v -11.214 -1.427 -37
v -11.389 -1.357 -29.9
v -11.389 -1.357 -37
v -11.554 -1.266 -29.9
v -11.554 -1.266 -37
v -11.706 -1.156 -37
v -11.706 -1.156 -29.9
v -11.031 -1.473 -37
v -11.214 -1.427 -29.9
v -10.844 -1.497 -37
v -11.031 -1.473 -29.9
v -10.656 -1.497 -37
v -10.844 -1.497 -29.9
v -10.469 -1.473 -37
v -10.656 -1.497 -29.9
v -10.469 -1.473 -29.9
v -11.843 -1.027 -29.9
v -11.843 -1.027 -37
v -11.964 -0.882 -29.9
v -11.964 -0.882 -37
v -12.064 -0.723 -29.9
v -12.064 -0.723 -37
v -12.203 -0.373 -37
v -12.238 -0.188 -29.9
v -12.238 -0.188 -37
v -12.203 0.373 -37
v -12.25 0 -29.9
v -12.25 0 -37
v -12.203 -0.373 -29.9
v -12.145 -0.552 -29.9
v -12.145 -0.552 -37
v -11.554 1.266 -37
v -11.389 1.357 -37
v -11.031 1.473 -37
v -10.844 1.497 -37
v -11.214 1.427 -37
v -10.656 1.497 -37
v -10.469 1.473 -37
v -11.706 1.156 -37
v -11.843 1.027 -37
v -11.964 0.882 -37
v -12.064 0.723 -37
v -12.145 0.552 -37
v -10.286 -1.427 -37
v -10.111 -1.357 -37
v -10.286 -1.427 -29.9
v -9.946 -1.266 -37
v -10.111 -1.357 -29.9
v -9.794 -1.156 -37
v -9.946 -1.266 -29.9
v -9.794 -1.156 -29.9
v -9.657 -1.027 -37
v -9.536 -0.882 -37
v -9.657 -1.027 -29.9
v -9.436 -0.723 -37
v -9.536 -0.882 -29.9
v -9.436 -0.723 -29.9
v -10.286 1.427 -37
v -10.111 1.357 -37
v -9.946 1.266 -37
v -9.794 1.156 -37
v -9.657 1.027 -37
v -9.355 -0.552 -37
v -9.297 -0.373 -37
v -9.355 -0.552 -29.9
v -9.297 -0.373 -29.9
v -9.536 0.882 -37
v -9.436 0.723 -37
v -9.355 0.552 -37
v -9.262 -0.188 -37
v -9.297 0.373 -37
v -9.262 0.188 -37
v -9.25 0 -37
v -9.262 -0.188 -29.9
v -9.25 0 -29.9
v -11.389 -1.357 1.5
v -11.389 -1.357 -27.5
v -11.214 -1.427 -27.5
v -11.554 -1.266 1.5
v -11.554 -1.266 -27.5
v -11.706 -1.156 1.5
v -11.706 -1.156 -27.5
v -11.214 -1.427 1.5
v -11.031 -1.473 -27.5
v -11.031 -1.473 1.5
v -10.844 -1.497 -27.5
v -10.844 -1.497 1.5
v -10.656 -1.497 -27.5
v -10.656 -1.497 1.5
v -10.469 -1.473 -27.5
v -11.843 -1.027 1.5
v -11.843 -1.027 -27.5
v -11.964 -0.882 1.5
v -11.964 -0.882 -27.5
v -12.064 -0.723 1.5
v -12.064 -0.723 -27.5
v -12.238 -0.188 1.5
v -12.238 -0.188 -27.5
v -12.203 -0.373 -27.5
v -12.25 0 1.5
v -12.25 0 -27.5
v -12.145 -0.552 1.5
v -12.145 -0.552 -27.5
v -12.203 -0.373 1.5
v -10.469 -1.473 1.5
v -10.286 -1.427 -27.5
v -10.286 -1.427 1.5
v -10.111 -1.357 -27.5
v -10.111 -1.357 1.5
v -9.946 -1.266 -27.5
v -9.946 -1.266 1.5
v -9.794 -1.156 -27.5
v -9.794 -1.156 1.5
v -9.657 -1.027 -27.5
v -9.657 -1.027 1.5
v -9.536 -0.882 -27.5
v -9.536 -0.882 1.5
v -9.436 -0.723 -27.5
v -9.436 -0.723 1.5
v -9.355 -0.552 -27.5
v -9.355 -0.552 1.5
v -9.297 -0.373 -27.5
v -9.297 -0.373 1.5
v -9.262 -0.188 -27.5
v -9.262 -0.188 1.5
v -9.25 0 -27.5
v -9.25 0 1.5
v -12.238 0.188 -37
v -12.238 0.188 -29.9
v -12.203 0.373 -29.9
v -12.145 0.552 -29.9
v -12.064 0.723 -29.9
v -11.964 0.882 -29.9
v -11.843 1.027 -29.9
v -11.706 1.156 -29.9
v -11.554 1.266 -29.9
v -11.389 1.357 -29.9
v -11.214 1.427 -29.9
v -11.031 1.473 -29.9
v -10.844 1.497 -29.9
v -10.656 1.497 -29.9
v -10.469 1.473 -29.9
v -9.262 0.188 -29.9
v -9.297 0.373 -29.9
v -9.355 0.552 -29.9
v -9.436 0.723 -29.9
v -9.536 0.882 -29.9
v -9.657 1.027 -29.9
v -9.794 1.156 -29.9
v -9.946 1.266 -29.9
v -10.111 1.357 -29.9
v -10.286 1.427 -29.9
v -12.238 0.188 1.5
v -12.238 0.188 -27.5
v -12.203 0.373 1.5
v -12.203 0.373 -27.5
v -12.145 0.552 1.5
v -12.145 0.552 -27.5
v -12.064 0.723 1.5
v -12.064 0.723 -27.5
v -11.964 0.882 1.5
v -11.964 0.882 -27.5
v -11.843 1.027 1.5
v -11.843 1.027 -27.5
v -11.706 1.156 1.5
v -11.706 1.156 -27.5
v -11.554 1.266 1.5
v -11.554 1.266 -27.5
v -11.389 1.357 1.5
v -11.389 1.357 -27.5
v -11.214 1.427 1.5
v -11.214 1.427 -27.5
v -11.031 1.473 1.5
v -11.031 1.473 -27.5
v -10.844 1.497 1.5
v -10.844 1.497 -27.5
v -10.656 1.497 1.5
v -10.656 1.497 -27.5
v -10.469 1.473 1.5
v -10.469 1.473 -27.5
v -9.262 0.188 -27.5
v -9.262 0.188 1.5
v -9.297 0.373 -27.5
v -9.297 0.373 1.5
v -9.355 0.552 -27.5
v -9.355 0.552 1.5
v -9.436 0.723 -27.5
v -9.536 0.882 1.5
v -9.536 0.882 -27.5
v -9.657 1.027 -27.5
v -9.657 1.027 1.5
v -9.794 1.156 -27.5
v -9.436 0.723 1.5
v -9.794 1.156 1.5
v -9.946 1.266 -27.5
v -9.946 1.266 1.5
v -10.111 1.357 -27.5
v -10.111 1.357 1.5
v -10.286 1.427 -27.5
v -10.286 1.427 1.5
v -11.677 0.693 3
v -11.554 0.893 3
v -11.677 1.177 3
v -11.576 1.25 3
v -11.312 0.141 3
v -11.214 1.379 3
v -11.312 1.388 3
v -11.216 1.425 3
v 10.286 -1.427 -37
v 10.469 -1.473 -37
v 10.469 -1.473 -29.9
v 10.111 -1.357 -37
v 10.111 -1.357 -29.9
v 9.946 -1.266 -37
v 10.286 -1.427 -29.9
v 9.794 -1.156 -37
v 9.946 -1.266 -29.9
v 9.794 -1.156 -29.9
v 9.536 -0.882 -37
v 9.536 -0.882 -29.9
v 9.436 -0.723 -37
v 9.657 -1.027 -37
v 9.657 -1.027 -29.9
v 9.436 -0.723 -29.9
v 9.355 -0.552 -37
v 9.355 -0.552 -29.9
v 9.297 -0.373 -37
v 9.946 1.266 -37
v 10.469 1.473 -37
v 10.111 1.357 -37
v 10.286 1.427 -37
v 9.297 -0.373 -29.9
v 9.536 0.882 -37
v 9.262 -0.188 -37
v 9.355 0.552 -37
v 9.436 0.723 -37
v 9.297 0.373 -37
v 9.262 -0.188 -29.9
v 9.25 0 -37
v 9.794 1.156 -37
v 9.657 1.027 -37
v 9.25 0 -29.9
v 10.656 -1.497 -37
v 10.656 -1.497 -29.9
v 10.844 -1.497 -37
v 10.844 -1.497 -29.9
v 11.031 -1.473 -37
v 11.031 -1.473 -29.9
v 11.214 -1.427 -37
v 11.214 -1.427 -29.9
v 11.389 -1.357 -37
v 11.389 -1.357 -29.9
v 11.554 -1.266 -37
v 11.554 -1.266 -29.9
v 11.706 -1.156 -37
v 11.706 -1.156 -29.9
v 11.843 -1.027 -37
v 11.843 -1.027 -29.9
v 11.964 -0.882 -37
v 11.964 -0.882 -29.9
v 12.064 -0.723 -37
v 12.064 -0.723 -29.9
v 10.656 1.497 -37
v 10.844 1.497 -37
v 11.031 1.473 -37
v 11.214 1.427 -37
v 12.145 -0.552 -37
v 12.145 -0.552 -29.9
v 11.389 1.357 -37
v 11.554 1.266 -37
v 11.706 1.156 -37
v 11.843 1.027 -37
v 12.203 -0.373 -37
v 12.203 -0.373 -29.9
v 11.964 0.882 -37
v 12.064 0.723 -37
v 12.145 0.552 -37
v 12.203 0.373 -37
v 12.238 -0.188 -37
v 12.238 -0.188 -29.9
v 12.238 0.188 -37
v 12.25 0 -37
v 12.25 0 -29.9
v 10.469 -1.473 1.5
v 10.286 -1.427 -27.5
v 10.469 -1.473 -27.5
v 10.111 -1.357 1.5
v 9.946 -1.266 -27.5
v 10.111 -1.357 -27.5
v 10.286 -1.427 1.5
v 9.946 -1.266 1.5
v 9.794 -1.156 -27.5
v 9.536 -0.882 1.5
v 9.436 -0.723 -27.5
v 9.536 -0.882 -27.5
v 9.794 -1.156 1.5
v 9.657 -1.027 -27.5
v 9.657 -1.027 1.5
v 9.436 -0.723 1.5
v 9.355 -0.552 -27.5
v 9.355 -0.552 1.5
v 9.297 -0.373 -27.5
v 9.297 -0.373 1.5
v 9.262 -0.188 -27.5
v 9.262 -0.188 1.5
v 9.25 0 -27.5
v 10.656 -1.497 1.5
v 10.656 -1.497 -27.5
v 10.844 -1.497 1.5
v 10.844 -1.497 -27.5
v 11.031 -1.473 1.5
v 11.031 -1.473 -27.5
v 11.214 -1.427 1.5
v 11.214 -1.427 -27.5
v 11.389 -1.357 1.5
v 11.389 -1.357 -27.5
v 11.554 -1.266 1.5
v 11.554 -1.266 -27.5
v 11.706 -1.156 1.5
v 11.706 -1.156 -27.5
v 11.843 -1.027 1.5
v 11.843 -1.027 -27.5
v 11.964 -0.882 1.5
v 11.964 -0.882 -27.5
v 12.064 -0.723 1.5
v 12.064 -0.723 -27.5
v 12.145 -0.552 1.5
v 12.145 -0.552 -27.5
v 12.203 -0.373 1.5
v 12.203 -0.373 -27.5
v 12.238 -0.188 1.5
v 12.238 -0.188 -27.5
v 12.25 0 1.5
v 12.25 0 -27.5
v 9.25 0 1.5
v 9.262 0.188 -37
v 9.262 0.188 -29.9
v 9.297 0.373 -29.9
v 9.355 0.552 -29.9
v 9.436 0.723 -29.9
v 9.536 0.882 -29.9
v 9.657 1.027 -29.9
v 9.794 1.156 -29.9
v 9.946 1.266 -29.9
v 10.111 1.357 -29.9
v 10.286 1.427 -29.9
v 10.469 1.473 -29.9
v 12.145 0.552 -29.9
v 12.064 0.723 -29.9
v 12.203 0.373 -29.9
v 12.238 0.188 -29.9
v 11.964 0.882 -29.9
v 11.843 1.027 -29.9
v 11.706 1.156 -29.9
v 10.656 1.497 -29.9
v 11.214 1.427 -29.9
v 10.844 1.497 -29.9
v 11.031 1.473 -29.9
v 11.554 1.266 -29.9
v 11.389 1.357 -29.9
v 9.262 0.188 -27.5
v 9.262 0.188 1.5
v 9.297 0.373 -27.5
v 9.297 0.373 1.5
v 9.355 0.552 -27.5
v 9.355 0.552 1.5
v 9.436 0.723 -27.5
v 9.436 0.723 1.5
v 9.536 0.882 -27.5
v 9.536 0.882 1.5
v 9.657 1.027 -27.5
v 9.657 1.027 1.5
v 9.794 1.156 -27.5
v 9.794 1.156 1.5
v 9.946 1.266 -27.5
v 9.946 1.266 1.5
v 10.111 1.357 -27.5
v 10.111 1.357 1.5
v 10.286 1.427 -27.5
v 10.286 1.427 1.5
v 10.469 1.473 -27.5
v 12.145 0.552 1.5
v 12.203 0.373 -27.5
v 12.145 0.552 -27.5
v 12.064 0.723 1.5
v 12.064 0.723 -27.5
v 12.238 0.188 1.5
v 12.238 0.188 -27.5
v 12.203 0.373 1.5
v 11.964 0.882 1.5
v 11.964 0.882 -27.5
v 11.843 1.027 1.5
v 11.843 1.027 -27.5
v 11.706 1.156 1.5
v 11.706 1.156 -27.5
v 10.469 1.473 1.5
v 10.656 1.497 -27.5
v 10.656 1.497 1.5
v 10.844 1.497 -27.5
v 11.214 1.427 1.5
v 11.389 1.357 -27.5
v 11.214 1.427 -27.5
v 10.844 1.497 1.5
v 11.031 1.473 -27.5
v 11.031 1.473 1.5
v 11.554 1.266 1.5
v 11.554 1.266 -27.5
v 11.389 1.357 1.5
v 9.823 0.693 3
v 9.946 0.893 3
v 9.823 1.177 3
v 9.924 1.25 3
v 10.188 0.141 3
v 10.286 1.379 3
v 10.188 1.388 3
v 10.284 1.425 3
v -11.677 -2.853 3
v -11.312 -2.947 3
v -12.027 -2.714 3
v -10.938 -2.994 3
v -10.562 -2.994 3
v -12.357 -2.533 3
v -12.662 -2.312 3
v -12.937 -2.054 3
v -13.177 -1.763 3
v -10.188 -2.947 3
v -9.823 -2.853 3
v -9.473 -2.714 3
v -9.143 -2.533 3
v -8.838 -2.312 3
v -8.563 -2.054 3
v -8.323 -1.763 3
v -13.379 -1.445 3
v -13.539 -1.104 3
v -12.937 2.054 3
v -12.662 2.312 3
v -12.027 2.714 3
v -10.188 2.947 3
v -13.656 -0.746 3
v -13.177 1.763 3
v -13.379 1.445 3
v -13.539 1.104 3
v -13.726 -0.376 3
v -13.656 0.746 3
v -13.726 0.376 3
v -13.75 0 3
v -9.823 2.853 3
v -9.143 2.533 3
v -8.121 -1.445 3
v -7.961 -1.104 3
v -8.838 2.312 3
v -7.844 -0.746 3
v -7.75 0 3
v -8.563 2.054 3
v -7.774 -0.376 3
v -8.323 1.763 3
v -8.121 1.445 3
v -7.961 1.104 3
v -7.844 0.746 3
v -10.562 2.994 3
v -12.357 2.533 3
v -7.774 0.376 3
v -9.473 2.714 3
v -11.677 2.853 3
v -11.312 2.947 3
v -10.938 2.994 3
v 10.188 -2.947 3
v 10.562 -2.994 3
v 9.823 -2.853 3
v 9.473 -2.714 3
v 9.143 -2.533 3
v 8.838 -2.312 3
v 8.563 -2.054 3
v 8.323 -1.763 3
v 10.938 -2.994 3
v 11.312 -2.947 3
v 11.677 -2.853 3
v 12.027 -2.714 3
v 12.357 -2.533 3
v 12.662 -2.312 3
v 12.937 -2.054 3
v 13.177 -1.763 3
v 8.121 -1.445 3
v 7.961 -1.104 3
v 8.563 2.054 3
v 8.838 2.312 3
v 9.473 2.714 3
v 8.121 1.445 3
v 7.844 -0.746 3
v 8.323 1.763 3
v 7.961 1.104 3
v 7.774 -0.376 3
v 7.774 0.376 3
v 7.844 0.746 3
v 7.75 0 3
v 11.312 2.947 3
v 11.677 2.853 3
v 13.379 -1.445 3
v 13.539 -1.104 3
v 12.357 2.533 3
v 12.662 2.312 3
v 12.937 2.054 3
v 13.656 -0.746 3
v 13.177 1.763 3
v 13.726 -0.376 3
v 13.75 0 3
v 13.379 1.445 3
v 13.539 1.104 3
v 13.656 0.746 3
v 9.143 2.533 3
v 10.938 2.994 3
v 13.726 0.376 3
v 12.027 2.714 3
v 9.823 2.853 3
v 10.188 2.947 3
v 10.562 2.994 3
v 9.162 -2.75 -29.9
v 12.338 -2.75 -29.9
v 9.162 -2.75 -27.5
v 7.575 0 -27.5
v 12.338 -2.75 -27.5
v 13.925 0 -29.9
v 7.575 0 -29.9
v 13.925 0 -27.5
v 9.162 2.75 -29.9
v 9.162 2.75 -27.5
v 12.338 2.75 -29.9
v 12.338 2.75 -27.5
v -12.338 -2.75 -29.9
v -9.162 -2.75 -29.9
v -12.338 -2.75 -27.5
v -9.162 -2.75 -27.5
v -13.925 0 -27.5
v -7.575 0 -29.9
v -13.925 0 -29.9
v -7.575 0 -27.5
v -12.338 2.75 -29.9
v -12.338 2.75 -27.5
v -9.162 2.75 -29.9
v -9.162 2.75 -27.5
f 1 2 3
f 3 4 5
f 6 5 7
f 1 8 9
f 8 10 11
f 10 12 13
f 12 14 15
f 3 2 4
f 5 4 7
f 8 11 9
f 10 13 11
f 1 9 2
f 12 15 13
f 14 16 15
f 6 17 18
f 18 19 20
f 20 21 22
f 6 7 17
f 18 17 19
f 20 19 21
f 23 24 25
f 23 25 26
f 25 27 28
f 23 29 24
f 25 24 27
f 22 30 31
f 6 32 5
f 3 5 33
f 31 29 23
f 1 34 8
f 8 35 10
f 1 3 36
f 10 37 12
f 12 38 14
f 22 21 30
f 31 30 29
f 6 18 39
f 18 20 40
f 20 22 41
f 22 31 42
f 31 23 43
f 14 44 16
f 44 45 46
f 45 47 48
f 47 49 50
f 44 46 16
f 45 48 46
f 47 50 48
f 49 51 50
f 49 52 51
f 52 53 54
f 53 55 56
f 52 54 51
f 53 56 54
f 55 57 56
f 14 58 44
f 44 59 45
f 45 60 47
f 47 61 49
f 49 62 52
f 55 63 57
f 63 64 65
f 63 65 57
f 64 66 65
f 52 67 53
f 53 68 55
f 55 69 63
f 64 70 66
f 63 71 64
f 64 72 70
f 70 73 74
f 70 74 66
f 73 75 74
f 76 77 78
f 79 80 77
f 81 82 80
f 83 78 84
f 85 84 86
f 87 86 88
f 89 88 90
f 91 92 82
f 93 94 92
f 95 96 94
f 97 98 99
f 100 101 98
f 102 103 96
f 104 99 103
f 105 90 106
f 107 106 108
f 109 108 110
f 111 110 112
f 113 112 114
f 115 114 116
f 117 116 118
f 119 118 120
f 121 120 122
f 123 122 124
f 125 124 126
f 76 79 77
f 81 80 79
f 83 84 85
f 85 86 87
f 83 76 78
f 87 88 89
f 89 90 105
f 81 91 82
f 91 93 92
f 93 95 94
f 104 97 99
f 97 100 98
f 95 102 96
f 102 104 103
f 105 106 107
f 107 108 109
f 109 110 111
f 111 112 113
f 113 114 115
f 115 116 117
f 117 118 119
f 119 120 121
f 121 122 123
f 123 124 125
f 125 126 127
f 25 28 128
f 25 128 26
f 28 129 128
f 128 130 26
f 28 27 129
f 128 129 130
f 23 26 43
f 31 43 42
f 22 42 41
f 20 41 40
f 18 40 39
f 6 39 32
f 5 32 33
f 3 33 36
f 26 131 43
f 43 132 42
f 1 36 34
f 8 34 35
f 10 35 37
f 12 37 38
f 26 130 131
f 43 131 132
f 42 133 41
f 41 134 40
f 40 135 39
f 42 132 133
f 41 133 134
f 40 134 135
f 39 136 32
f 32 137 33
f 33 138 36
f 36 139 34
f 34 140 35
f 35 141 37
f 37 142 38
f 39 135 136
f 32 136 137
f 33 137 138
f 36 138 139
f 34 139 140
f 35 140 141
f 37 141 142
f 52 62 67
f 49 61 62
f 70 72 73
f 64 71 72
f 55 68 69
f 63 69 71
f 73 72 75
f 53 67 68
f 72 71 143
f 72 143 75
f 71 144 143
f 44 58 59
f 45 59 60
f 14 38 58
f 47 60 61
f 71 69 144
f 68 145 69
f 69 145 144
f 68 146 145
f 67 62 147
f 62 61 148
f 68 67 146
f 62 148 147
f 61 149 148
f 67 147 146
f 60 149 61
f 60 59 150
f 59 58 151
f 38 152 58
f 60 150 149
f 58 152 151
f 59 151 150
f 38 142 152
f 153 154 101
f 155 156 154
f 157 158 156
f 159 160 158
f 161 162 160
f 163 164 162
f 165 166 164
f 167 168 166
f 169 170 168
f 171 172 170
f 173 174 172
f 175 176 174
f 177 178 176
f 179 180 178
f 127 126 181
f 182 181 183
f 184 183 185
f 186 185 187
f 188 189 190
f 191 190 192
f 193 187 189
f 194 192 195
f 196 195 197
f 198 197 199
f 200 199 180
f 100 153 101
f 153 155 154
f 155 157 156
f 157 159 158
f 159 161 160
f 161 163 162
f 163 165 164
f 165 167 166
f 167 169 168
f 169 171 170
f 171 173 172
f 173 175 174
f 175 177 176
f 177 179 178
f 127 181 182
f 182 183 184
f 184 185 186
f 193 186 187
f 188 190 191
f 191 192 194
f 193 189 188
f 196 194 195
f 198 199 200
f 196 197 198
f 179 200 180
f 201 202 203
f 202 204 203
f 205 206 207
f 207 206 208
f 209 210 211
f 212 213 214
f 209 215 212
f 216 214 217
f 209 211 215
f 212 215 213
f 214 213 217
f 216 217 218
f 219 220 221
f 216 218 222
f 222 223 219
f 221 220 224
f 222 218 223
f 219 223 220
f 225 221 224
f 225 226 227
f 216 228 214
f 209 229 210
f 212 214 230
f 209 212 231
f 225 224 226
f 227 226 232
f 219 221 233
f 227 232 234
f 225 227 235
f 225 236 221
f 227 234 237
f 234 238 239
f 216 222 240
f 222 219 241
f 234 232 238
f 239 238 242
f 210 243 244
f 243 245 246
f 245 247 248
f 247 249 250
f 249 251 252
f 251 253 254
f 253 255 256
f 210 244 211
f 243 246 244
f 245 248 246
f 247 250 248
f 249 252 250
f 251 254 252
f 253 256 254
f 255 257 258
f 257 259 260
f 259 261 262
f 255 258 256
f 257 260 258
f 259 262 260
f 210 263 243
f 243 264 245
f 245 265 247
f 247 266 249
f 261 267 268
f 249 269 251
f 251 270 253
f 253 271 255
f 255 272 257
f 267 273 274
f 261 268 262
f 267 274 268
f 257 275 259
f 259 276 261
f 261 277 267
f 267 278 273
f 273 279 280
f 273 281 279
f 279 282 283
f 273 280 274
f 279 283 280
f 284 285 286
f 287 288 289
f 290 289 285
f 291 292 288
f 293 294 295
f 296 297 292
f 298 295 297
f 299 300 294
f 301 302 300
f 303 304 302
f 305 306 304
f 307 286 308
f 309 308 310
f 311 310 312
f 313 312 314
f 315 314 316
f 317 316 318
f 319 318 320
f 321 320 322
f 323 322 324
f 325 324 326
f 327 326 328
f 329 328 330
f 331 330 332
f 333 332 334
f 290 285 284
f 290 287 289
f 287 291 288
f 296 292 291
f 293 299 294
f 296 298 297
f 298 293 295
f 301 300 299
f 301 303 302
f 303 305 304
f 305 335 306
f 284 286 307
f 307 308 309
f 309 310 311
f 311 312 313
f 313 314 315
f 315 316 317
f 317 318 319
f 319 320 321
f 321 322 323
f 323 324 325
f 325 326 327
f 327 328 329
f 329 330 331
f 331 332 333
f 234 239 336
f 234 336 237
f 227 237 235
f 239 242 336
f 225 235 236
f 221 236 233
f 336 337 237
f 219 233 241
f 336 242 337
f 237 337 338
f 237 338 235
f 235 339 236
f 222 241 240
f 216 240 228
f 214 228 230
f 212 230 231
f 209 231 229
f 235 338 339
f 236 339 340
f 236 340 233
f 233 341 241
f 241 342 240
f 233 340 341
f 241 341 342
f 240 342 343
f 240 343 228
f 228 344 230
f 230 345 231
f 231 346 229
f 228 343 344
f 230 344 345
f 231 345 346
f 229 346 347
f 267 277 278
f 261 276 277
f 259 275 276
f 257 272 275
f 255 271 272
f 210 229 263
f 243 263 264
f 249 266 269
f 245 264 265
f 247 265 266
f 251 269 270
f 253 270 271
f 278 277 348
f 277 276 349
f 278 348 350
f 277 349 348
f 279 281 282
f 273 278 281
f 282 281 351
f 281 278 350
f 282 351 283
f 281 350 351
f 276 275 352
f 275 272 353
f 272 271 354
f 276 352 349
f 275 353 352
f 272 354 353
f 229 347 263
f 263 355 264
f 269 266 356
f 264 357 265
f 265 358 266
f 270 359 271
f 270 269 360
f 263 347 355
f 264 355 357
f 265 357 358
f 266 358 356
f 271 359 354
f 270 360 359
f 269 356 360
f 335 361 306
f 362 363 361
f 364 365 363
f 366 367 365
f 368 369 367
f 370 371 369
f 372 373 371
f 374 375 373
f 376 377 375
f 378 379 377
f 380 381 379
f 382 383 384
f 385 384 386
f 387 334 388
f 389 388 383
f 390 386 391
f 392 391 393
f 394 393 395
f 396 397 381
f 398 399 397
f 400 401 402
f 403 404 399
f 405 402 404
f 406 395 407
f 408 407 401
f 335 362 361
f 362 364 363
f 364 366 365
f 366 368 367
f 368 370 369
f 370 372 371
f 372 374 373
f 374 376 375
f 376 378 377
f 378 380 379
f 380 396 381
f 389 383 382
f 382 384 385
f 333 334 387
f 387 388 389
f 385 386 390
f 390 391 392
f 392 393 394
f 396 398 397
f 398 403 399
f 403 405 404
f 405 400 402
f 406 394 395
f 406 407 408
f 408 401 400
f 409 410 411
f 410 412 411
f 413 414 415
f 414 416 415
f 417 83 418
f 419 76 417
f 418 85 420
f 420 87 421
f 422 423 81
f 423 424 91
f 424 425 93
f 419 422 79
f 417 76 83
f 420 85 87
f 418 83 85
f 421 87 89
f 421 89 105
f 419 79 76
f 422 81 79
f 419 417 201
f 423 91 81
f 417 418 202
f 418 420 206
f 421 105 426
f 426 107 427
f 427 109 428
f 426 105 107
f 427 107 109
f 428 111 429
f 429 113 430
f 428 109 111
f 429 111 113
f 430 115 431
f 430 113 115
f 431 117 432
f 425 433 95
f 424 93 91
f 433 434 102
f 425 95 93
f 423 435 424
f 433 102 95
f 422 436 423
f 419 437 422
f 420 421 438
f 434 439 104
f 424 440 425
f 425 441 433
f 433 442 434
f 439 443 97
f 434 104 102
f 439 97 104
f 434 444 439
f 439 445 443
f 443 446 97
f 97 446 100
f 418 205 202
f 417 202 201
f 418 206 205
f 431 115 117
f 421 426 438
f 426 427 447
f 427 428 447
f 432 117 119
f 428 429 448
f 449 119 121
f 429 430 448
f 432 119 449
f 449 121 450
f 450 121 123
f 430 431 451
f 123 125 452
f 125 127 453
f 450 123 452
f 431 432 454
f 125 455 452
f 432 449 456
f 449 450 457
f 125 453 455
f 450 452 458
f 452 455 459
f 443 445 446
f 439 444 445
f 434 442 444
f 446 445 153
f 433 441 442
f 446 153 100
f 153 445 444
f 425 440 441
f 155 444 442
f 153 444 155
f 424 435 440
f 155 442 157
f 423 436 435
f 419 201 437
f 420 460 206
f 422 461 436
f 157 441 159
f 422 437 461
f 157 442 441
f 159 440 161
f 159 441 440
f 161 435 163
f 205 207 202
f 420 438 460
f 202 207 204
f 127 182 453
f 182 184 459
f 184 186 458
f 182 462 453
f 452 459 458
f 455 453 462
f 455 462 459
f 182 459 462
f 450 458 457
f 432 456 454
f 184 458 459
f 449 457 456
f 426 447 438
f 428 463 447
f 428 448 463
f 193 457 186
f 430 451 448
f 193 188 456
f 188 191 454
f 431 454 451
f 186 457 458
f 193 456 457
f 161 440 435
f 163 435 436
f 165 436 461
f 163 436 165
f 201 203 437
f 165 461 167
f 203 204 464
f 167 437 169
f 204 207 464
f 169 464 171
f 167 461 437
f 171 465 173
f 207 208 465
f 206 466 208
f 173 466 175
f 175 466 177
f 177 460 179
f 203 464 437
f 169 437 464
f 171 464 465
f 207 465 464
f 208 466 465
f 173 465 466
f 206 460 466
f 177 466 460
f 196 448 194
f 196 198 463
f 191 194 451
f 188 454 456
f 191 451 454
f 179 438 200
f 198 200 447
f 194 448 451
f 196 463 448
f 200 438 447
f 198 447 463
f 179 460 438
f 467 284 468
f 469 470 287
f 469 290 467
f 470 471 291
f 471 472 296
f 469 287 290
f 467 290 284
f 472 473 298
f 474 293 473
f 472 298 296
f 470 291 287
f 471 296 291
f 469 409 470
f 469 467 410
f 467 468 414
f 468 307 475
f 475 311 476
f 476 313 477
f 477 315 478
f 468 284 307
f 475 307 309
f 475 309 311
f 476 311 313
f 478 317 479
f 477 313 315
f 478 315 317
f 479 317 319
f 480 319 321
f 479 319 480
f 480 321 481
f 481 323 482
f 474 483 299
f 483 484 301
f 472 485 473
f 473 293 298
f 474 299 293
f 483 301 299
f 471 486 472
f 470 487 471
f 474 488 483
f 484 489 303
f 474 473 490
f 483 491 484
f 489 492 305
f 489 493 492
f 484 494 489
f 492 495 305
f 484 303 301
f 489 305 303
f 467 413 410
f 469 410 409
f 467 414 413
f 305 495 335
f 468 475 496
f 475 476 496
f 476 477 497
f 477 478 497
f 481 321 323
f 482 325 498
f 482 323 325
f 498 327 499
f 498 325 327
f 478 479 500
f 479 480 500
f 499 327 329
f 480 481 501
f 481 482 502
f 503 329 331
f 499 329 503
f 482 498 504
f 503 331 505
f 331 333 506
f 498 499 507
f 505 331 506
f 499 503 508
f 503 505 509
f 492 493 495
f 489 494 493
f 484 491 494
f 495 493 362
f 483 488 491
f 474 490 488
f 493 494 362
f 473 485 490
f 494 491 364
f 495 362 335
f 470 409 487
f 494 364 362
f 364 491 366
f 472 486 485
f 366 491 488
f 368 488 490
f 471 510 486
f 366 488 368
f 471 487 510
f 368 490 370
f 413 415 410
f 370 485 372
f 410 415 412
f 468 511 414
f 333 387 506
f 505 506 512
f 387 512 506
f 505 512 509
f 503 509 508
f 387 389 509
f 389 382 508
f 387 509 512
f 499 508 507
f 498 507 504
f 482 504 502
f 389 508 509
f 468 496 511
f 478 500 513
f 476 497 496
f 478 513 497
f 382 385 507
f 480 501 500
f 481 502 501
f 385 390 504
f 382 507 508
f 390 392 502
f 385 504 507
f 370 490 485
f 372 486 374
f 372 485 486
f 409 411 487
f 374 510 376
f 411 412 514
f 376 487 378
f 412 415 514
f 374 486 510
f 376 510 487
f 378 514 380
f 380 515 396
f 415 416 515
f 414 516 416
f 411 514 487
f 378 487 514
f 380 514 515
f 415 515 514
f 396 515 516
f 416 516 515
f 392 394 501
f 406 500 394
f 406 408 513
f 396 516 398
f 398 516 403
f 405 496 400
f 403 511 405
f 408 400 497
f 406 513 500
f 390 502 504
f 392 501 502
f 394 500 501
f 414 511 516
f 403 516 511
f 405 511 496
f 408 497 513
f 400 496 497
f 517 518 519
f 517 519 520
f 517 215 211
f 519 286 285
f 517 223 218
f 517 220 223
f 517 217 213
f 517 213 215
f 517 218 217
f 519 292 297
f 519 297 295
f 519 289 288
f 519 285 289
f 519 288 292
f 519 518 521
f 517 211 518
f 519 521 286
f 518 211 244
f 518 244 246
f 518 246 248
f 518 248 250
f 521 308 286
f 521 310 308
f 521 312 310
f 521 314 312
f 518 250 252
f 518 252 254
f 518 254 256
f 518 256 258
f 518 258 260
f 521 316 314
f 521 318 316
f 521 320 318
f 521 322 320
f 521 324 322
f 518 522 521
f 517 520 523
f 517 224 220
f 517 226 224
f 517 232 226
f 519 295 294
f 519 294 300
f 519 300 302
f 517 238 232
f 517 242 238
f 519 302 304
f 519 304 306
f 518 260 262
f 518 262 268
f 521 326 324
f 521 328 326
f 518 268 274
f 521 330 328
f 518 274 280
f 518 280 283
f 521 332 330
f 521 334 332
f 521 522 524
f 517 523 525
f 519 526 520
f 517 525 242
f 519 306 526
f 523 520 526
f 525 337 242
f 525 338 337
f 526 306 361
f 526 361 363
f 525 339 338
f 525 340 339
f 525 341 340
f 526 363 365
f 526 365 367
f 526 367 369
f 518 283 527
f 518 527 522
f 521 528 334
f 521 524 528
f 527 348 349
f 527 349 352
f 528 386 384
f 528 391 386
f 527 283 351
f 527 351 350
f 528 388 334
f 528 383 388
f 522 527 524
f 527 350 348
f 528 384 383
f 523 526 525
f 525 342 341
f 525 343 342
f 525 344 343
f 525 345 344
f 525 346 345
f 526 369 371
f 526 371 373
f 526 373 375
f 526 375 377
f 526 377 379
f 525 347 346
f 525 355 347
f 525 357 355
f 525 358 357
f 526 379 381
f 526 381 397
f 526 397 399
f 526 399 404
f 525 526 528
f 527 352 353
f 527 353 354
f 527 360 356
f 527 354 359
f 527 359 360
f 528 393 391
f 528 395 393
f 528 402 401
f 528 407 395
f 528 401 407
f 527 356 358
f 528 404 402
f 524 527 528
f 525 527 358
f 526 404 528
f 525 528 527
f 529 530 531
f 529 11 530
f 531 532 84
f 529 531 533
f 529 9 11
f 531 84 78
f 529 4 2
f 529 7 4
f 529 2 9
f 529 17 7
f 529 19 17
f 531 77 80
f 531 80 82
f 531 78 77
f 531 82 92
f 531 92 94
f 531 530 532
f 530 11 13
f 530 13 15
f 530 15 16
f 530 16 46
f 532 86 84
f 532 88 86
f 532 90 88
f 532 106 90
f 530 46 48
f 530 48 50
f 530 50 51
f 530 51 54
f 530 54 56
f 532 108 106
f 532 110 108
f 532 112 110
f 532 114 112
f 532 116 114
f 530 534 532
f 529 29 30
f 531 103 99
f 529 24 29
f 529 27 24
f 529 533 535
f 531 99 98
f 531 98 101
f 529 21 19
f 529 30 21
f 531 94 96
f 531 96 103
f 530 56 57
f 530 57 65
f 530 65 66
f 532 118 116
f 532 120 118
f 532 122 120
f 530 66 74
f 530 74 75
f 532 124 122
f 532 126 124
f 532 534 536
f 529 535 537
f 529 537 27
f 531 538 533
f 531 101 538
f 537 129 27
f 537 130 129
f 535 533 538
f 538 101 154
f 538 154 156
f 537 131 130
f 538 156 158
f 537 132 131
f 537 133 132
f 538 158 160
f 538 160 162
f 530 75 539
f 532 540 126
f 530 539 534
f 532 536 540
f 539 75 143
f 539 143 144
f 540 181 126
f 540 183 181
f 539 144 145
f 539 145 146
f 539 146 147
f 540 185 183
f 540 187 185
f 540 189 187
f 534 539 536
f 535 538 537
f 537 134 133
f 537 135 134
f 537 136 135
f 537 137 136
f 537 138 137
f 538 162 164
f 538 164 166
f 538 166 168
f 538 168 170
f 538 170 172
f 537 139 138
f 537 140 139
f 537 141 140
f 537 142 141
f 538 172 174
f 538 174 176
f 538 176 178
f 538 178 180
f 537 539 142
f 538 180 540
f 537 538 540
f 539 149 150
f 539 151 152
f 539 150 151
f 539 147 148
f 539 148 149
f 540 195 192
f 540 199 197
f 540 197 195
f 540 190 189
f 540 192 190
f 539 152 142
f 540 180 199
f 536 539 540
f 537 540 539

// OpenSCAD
$fn = 50;

difference() {
	union() {
		translate(v = [-10.75, 0, 3]) {
			rotate(a = [0, 0, 0]) {
				difference() {
					union() {
						translate(v = [0, 0, -40.0]) {
							cylinder(h = 40, r = 1.5);
						}
						translate(v = [0, 0, -1.5]) {
							cylinder(h = 1.5, r1 = 1.5, r2 = 3);
						}
					}
					union();
				}
			}
		}
		translate(v = [-10.75, 0, -29.900000000000002]) {
			rotate(a = [0, 0, 0]) {
				difference() {
					union() {
						linear_extrude(height = 2.4) {
							polygon(points = [[3.1754264805429417, 0.0], [1.5877132402714713, 2.75], [-1.5877132402714702, 2.7500000000000004], [-3.1754264805429417, 3.888775875324659e-16], [-1.5877132402714722, -2.7499999999999996], [1.5877132402714687, -2.7500000000000013]]);
						}
					}
					union();
				}
			}
		}
		translate(v = [10.75, 0, 3]) {
			rotate(a = [0, 0, 0]) {
				difference() {
					union() {
						translate(v = [0, 0, -40.0]) {
							cylinder(h = 40, r = 1.5);
						}
						translate(v = [0, 0, -1.5]) {
							cylinder(h = 1.5, r1 = 1.5, r2 = 3);
						}
					}
					union();
				}
			}
		}
		translate(v = [10.75, 0, -29.900000000000002]) {
			rotate(a = [0, 0, 0]) {
				difference() {
					union() {
						linear_extrude(height = 2.4) {
							polygon(points = [[3.1754264805429417, 0.0], [1.5877132402714713, 2.75], [-1.5877132402714702, 2.7500000000000004], [-3.1754264805429417, 3.888775875324659e-16], [-1.5877132402714722, -2.7499999999999996], [1.5877132402714687, -2.7500000000000013]]);
						}
					}
					union();
				}
			}
		}
	}
	union();
}
